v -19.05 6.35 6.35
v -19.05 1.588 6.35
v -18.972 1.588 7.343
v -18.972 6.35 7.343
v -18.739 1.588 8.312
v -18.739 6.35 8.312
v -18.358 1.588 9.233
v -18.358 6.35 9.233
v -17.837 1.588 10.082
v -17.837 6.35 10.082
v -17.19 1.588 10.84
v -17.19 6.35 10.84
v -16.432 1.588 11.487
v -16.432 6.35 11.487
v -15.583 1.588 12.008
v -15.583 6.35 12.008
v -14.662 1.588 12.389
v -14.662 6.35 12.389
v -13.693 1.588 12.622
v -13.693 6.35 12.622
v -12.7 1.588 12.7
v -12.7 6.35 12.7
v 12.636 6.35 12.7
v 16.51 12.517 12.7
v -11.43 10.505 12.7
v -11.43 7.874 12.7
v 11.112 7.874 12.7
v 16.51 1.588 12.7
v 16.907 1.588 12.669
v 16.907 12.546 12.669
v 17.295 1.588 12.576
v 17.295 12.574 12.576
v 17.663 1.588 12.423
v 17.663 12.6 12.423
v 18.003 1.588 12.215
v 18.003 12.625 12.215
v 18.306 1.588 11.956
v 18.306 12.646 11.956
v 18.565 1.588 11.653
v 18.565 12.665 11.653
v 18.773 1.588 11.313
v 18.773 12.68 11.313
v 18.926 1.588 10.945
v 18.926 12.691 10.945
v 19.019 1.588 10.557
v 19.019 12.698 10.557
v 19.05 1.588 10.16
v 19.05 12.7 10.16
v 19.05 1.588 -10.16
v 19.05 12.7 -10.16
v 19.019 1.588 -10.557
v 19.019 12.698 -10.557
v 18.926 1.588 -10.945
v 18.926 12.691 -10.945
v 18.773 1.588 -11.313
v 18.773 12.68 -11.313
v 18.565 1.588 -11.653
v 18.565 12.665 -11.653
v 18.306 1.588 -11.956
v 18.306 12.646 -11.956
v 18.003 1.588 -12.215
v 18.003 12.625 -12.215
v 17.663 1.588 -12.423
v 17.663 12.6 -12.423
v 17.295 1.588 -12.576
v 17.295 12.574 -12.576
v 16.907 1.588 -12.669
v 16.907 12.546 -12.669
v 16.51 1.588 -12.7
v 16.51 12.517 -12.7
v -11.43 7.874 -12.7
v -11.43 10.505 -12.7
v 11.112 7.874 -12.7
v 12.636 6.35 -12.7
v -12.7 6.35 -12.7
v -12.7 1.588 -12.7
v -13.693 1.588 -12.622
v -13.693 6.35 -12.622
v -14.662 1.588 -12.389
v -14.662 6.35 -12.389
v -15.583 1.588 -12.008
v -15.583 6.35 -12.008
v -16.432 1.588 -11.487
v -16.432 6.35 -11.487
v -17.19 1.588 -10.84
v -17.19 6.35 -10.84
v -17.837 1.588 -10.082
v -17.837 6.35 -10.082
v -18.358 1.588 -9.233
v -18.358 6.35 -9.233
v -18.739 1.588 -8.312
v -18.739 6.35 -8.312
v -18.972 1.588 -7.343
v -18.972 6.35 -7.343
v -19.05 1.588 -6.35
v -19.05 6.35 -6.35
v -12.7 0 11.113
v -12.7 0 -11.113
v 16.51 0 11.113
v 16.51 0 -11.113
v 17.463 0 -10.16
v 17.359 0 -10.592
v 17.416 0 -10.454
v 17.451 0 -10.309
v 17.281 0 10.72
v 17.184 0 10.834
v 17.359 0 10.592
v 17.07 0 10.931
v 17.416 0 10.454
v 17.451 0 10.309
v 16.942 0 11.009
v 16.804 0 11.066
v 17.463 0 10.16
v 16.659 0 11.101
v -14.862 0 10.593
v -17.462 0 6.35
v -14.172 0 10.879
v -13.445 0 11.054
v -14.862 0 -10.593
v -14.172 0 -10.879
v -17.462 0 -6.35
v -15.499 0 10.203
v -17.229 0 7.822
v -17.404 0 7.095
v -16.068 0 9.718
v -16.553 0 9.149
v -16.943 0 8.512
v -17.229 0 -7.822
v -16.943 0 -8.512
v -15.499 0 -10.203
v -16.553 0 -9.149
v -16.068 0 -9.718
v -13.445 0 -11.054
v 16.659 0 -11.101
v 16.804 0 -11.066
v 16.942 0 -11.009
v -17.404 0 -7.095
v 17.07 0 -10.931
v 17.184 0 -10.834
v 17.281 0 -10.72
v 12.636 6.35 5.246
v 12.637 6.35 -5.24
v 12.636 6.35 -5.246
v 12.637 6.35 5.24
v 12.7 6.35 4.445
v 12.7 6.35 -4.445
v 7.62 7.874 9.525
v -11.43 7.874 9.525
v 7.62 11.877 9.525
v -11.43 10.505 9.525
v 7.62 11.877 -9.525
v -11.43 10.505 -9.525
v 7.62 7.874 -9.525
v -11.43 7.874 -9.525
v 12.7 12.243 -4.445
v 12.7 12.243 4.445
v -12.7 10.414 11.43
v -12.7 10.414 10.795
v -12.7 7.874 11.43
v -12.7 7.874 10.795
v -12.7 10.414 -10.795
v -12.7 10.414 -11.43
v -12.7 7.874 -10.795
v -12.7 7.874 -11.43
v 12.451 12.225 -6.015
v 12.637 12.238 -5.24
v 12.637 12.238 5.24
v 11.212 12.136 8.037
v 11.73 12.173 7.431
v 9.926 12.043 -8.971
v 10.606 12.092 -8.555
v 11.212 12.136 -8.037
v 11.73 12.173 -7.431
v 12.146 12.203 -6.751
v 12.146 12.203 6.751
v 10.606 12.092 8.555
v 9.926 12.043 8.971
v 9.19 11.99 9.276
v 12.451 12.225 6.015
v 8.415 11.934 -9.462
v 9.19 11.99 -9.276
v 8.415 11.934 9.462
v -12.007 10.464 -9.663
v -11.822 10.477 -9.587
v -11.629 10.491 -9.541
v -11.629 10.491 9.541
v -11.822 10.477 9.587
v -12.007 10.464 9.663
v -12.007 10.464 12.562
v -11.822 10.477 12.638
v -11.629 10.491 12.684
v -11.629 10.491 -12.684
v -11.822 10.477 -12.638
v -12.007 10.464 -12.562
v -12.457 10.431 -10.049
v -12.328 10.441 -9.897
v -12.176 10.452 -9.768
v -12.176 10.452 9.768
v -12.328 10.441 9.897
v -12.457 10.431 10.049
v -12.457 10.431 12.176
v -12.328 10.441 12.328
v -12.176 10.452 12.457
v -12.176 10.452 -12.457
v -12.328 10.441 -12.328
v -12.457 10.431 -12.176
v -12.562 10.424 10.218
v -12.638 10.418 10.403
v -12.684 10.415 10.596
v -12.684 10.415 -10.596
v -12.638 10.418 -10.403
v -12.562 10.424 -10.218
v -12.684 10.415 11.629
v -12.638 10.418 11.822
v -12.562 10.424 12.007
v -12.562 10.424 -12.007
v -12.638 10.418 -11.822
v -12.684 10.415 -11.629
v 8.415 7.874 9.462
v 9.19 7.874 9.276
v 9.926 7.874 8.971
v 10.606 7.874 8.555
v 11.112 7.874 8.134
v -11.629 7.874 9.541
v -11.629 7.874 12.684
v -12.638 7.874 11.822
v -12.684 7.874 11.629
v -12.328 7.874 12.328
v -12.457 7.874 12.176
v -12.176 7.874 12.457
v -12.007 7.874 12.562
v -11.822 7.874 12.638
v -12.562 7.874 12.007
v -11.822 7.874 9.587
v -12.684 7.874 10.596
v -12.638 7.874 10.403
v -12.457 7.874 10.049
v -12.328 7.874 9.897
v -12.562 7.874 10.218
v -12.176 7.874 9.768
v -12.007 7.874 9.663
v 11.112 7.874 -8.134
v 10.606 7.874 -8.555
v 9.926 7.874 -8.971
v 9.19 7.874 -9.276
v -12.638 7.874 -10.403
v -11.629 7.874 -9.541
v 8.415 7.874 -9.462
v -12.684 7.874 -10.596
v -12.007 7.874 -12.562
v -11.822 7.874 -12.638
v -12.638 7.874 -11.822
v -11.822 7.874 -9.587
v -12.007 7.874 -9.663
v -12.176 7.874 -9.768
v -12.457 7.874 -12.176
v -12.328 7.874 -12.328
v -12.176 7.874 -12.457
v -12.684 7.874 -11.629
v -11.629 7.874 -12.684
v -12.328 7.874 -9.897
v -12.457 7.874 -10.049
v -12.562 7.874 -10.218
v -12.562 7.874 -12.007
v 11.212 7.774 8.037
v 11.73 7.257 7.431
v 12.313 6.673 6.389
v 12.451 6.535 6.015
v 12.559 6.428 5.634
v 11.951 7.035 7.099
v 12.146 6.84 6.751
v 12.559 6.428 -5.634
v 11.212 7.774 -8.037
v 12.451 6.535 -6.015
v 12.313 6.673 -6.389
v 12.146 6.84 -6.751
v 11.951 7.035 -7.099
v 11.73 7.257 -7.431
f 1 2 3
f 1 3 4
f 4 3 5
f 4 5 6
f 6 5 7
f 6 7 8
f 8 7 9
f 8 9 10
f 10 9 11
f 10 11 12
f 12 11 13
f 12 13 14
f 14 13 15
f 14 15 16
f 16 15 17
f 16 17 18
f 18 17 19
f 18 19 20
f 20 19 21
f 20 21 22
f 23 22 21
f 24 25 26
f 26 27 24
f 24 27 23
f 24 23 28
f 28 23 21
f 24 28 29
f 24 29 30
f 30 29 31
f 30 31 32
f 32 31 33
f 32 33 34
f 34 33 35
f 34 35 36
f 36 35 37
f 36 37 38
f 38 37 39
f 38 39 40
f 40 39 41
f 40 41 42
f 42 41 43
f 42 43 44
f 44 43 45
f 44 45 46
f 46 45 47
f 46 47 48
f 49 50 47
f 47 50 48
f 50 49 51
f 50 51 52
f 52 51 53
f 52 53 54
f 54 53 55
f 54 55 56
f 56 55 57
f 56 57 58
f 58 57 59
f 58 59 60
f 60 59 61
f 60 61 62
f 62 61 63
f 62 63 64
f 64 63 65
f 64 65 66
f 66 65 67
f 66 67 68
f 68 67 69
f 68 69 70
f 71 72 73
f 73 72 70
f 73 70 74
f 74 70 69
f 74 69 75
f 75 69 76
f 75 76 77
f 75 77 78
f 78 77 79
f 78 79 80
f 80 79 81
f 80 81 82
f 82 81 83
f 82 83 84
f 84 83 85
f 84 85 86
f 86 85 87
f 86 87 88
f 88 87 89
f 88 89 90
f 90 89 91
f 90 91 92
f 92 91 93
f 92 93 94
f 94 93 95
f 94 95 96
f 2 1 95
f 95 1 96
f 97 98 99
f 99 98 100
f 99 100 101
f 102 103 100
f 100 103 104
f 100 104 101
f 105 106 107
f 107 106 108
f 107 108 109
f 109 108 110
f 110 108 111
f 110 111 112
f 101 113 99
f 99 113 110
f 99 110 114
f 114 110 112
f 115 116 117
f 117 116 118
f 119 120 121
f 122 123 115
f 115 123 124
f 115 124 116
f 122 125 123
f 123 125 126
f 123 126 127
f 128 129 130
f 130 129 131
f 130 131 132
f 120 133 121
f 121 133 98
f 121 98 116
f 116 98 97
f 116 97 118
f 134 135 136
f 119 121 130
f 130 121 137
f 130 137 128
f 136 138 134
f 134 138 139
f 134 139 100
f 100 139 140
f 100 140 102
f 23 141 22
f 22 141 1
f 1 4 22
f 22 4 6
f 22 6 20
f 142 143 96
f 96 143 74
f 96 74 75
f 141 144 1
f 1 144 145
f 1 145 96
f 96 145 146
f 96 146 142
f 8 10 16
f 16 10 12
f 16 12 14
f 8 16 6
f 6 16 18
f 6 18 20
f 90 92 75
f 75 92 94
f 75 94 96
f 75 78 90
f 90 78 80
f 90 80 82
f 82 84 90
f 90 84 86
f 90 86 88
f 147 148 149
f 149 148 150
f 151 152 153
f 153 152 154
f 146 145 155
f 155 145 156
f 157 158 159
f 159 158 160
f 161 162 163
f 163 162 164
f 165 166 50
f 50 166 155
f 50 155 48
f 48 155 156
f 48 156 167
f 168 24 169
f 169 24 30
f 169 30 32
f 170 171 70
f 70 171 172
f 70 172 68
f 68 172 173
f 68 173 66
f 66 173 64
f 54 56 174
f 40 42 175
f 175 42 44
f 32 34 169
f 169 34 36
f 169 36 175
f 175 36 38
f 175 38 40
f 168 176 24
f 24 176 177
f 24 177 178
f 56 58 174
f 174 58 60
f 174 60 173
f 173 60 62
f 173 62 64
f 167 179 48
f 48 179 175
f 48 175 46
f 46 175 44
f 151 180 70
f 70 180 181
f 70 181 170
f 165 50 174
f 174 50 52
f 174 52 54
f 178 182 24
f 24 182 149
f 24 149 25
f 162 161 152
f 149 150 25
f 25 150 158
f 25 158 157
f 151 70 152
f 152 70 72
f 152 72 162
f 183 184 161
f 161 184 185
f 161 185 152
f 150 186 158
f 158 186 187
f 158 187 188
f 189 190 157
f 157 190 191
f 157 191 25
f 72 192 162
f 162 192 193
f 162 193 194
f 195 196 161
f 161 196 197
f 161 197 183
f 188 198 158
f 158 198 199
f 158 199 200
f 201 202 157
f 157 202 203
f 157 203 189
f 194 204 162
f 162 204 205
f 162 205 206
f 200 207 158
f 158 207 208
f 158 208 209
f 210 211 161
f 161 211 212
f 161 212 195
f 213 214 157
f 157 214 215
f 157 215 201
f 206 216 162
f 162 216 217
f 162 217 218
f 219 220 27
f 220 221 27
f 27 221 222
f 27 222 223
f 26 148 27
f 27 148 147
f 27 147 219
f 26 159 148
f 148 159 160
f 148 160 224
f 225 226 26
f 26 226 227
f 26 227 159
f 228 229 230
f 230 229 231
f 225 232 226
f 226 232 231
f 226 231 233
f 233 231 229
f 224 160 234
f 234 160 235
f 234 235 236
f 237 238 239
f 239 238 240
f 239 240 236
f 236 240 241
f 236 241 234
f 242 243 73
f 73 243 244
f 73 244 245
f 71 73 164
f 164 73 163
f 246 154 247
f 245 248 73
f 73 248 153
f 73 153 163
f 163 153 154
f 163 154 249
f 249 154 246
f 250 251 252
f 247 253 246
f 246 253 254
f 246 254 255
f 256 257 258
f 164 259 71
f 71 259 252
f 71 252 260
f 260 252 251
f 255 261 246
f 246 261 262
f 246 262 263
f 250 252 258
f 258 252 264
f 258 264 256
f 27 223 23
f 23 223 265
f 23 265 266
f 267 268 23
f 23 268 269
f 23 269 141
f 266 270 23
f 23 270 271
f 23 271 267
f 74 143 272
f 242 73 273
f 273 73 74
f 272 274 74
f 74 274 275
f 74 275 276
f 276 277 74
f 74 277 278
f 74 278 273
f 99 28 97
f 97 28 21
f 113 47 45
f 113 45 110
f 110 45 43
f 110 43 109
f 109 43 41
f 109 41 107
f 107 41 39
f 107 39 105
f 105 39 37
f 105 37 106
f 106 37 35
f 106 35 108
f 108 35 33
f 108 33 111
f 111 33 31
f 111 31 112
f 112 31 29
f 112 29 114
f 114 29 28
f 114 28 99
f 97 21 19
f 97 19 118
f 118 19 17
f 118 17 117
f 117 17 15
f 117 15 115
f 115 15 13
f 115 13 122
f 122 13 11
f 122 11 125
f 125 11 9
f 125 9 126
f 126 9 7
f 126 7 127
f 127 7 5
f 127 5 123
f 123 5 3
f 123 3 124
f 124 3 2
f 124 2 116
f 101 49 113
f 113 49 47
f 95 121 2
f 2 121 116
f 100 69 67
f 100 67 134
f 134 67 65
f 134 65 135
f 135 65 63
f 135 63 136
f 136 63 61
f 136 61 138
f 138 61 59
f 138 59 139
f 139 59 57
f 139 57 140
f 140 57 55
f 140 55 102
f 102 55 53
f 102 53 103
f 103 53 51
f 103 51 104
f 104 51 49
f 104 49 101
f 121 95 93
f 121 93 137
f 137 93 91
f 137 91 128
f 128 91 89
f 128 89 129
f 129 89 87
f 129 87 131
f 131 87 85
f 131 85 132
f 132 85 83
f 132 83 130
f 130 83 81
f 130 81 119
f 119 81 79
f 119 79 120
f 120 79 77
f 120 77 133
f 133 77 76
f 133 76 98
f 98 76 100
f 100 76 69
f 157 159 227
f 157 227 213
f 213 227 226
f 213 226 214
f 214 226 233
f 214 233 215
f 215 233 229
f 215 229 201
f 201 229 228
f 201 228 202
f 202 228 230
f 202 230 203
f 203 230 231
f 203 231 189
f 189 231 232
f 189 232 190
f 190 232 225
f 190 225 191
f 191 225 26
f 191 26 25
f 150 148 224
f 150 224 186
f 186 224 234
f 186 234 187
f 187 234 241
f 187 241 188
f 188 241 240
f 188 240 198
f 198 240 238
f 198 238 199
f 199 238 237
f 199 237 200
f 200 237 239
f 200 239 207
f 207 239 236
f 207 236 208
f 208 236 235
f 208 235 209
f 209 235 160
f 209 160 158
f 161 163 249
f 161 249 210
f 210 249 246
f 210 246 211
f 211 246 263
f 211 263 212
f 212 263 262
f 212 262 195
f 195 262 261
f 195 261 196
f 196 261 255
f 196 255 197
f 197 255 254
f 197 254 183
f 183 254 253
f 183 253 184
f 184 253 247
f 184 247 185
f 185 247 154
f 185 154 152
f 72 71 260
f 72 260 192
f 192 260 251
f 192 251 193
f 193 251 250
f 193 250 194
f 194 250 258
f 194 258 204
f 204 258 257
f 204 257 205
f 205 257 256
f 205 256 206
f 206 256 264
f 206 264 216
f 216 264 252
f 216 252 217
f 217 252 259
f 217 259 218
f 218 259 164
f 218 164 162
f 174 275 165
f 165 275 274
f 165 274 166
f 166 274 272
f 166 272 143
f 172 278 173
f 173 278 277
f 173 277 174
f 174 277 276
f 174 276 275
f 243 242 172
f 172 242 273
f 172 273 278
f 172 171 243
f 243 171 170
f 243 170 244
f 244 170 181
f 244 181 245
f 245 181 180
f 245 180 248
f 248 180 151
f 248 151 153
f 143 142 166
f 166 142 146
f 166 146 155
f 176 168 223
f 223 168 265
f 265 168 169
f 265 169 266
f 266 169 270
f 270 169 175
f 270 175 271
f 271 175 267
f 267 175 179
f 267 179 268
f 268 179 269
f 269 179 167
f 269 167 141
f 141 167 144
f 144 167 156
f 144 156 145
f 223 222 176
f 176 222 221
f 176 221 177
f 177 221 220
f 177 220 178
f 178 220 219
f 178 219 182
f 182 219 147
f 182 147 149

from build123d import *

# Parameters (mm, degrees)
BOSS_EXTRUDE1_DEPTH = 12.7
SKETCH2_W           = 19.05
SKETCH2_H           = 6.35
CUT_EXTRUDE1_DEPTH  = 31.75
CUT_EXTRUDE2_DEPTH  = 35.195796525
CHAMFER3_SIZE       = 1.5875
FILLET1_R           = 1.27
FILLET2_R           = 5.08


with BuildPart() as part:
    # Sketch1 → Boss-Extrude1 (new body)
    with BuildSketch(Plane(origin=(0, 0, 0), x_dir=(1, 0, 0), z_dir=(0, 1, 0))):
        with BuildLine():
            Line((-12.7, -12.7), (16.51, -12.7))
            ThreePointArc((16.51, -12.7), (18.306051224, -11.956051224), (19.05, -10.16))
            Line((19.05, -10.16), (19.05, 10.16))
            ThreePointArc((19.05, 10.16), (18.306051224, 11.956051224), (16.51, 12.7))
            Line((16.51, 12.7), (-12.7, 12.7))
            ThreePointArc((-12.7, 12.7), (-17.190128061, 10.840128061), (-19.05, 6.35))
            Line((-19.05, 6.35), (-19.05, -6.35))
            ThreePointArc((-19.05, -6.35), (-17.190128061, -10.840128061), (-12.7, -12.7))
        make_face()
    extrude(amount=BOSS_EXTRUDE1_DEPTH)

    # Sketch2 → Cut-Extrude1 (cut)
    with BuildSketch(Plane.ZY.offset(19.05)):
        with Locations((0, 9.525)):
            Rectangle(SKETCH2_W, SKETCH2_H)
    extrude(amount=-CUT_EXTRUDE1_DEPTH, mode=Mode.SUBTRACT)

    # Sketch3 → Cut-Extrude2 (cut, through all)
    with BuildSketch(Plane.XY.offset(12.7)):
        Polygon((19.05, 12.7), (-19.05, 12.7), (-19.05, 6.35), (12.065, 6.35), (12.7, 6.35), (12.7, 6.985), (12.7, 7.239), (12.7, 7.874), (12.065, 7.874), (-12.7, 7.874), (-12.7, 10.414), align=None)
    extrude(amount=-CUT_EXTRUDE2_DEPTH, mode=Mode.SUBTRACT)

    # Chamfer3
    # the kernel refuses this chamfer: 1.5875 mm, written as the material it adds along each edge
    with BuildSketch(Plane(origin=(12.7, 7.874, 12.7), x_dir=(0.027495876610588915, -0.9996219169112966, 0), z_dir=(0, 0, -1))) as chamfer3_piece_1:
        Polygon((CHAMFER3_SIZE * 0.999621916911, CHAMFER3_SIZE * 0.0274958766106), (-CHAMFER3_SIZE * 0.0274958766106, CHAMFER3_SIZE * 0.999621916911), (0, 0), align=None)
    extrude(amount=3.175)
    with BuildSketch(Plane(origin=(12.7, 7.874, -9.525), x_dir=(-0.9996219169112968, 0.027495876610586185, 0), z_dir=(0, 0, -1))) as chamfer3_piece_2:
        Polygon((CHAMFER3_SIZE * 0.999621916911, -CHAMFER3_SIZE * 0.0274958766106), (-CHAMFER3_SIZE * 0.0274958766106, -CHAMFER3_SIZE * 0.999621916911), (0, 0), align=None)
    extrude(amount=3.175)
    # the kernel refuses this chamfer: 1.5875 mm, written as the material it takes off along each edge
    with BuildSketch(Plane(origin=(-12.7, 0, 12.7), x_dir=(0, 0.9996219169112966, 0.027495876610586743), z_dir=(1, 0, 0)), Plane(origin=(16.51, 0, -12.7), x_dir=(0, 0.9996219169112966, -0.027495876610586743), z_dir=(-1, 0, 0))) as chamfer3_2_piece_1:
        Polygon((CHAMFER3_SIZE * 0.999621916911, -CHAMFER3_SIZE * 0.0274958766106), (-CHAMFER3_SIZE * 0.0274958766106, -CHAMFER3_SIZE * 0.999621916911), (0, 0), align=None)
    extrude(amount=29.21, mode=Mode.SUBTRACT)
    with BuildSketch(Plane(origin=(16.51, 0, 10.16), x_dir=(0, 0, 1), z_dir=(-1, 0, 0))) as chamfer3_2_piece_2:
        Polygon((2.54 - CHAMFER3_SIZE, 0), (2.54, CHAMFER3_SIZE), (2.54, 0), align=None)
    revolve(axis=Axis((16.51, 0, 10.16), (0, 1, 0)), revolution_arc=90, mode=Mode.SUBTRACT)
    with BuildSketch(Plane(origin=(19.05, 0, 10.16), x_dir=(0.027495876610585654, 0.9996219169112966, 0), z_dir=(0, 0, -1))) as chamfer3_2_piece_3:
        Polygon((CHAMFER3_SIZE * 0.999621916911, -CHAMFER3_SIZE * 0.0274958766106), (-CHAMFER3_SIZE * 0.0274958766106, -CHAMFER3_SIZE * 0.999621916911), (0, 0), align=None)
    extrude(amount=20.32, mode=Mode.SUBTRACT)
    with BuildSketch(Plane(origin=(16.51, 0, -10.16), x_dir=(1, 0, 0), z_dir=(0, 0, 1))) as chamfer3_2_piece_4:
        Polygon((2.54, CHAMFER3_SIZE), (2.54 - CHAMFER3_SIZE, 0), (2.54, 0), align=None)
    revolve(axis=Axis((16.51, 0, -10.16), (0, 1, 0)), revolution_arc=90, mode=Mode.SUBTRACT)
    with BuildSketch(Plane(origin=(-12.7, 0, -6.35), x_dir=(0, 0, -1), z_dir=(1, 0, 0))) as chamfer3_2_piece_5:
        Polygon((6.35, CHAMFER3_SIZE), (6.35 - CHAMFER3_SIZE, 0), (6.35, 0), align=None)
    revolve(axis=Axis((-12.7, 0, -6.35), (0, 1, 0)), revolution_arc=90, mode=Mode.SUBTRACT)
    with BuildSketch(Plane(origin=(-12.7, 0, 6.35), x_dir=(-1, 0, 0), z_dir=(0, 0, -1))) as chamfer3_2_piece_6:
        Polygon((6.35, CHAMFER3_SIZE), (6.35 - CHAMFER3_SIZE, 0), (6.35, 0), align=None)
    revolve(axis=Axis((-12.7, 0, 6.35), (0, 1, 0)), revolution_arc=90, mode=Mode.SUBTRACT)
    with BuildSketch(Plane(origin=(-19.05, 0, -6.35), x_dir=(-0.027495876610585654, 0.9996219169112966, 0), z_dir=(0, 0, 1))) as chamfer3_2_piece_7:
        Polygon((CHAMFER3_SIZE * 0.999621916911, -CHAMFER3_SIZE * 0.0274958766106), (-CHAMFER3_SIZE * 0.0274958766106, -CHAMFER3_SIZE * 0.999621916911), (0, 0), align=None)
    extrude(amount=12.7, mode=Mode.SUBTRACT)

    # Fillet1
    fillet1_edges = [part.edges().sort_by_distance(p)[0] for p in [
        (-12.7, 9.144, -9.525),
        (-12.7, 9.144, 9.525),
        (-12.7, 9.144, -12.7),
        (-12.7, 9.144, 12.7),
    ]]
    fillet(fillet1_edges, radius=FILLET1_R)

    # Fillet2
    fillet2_edges = [part.edges().sort_by_distance(p)[0] for p in [
        (12.7, 9.2964, -9.525),
        (12.7, 9.2964, 9.525),
    ]]
    fillet(fillet2_edges, radius=FILLET2_R)


solid = part.part
